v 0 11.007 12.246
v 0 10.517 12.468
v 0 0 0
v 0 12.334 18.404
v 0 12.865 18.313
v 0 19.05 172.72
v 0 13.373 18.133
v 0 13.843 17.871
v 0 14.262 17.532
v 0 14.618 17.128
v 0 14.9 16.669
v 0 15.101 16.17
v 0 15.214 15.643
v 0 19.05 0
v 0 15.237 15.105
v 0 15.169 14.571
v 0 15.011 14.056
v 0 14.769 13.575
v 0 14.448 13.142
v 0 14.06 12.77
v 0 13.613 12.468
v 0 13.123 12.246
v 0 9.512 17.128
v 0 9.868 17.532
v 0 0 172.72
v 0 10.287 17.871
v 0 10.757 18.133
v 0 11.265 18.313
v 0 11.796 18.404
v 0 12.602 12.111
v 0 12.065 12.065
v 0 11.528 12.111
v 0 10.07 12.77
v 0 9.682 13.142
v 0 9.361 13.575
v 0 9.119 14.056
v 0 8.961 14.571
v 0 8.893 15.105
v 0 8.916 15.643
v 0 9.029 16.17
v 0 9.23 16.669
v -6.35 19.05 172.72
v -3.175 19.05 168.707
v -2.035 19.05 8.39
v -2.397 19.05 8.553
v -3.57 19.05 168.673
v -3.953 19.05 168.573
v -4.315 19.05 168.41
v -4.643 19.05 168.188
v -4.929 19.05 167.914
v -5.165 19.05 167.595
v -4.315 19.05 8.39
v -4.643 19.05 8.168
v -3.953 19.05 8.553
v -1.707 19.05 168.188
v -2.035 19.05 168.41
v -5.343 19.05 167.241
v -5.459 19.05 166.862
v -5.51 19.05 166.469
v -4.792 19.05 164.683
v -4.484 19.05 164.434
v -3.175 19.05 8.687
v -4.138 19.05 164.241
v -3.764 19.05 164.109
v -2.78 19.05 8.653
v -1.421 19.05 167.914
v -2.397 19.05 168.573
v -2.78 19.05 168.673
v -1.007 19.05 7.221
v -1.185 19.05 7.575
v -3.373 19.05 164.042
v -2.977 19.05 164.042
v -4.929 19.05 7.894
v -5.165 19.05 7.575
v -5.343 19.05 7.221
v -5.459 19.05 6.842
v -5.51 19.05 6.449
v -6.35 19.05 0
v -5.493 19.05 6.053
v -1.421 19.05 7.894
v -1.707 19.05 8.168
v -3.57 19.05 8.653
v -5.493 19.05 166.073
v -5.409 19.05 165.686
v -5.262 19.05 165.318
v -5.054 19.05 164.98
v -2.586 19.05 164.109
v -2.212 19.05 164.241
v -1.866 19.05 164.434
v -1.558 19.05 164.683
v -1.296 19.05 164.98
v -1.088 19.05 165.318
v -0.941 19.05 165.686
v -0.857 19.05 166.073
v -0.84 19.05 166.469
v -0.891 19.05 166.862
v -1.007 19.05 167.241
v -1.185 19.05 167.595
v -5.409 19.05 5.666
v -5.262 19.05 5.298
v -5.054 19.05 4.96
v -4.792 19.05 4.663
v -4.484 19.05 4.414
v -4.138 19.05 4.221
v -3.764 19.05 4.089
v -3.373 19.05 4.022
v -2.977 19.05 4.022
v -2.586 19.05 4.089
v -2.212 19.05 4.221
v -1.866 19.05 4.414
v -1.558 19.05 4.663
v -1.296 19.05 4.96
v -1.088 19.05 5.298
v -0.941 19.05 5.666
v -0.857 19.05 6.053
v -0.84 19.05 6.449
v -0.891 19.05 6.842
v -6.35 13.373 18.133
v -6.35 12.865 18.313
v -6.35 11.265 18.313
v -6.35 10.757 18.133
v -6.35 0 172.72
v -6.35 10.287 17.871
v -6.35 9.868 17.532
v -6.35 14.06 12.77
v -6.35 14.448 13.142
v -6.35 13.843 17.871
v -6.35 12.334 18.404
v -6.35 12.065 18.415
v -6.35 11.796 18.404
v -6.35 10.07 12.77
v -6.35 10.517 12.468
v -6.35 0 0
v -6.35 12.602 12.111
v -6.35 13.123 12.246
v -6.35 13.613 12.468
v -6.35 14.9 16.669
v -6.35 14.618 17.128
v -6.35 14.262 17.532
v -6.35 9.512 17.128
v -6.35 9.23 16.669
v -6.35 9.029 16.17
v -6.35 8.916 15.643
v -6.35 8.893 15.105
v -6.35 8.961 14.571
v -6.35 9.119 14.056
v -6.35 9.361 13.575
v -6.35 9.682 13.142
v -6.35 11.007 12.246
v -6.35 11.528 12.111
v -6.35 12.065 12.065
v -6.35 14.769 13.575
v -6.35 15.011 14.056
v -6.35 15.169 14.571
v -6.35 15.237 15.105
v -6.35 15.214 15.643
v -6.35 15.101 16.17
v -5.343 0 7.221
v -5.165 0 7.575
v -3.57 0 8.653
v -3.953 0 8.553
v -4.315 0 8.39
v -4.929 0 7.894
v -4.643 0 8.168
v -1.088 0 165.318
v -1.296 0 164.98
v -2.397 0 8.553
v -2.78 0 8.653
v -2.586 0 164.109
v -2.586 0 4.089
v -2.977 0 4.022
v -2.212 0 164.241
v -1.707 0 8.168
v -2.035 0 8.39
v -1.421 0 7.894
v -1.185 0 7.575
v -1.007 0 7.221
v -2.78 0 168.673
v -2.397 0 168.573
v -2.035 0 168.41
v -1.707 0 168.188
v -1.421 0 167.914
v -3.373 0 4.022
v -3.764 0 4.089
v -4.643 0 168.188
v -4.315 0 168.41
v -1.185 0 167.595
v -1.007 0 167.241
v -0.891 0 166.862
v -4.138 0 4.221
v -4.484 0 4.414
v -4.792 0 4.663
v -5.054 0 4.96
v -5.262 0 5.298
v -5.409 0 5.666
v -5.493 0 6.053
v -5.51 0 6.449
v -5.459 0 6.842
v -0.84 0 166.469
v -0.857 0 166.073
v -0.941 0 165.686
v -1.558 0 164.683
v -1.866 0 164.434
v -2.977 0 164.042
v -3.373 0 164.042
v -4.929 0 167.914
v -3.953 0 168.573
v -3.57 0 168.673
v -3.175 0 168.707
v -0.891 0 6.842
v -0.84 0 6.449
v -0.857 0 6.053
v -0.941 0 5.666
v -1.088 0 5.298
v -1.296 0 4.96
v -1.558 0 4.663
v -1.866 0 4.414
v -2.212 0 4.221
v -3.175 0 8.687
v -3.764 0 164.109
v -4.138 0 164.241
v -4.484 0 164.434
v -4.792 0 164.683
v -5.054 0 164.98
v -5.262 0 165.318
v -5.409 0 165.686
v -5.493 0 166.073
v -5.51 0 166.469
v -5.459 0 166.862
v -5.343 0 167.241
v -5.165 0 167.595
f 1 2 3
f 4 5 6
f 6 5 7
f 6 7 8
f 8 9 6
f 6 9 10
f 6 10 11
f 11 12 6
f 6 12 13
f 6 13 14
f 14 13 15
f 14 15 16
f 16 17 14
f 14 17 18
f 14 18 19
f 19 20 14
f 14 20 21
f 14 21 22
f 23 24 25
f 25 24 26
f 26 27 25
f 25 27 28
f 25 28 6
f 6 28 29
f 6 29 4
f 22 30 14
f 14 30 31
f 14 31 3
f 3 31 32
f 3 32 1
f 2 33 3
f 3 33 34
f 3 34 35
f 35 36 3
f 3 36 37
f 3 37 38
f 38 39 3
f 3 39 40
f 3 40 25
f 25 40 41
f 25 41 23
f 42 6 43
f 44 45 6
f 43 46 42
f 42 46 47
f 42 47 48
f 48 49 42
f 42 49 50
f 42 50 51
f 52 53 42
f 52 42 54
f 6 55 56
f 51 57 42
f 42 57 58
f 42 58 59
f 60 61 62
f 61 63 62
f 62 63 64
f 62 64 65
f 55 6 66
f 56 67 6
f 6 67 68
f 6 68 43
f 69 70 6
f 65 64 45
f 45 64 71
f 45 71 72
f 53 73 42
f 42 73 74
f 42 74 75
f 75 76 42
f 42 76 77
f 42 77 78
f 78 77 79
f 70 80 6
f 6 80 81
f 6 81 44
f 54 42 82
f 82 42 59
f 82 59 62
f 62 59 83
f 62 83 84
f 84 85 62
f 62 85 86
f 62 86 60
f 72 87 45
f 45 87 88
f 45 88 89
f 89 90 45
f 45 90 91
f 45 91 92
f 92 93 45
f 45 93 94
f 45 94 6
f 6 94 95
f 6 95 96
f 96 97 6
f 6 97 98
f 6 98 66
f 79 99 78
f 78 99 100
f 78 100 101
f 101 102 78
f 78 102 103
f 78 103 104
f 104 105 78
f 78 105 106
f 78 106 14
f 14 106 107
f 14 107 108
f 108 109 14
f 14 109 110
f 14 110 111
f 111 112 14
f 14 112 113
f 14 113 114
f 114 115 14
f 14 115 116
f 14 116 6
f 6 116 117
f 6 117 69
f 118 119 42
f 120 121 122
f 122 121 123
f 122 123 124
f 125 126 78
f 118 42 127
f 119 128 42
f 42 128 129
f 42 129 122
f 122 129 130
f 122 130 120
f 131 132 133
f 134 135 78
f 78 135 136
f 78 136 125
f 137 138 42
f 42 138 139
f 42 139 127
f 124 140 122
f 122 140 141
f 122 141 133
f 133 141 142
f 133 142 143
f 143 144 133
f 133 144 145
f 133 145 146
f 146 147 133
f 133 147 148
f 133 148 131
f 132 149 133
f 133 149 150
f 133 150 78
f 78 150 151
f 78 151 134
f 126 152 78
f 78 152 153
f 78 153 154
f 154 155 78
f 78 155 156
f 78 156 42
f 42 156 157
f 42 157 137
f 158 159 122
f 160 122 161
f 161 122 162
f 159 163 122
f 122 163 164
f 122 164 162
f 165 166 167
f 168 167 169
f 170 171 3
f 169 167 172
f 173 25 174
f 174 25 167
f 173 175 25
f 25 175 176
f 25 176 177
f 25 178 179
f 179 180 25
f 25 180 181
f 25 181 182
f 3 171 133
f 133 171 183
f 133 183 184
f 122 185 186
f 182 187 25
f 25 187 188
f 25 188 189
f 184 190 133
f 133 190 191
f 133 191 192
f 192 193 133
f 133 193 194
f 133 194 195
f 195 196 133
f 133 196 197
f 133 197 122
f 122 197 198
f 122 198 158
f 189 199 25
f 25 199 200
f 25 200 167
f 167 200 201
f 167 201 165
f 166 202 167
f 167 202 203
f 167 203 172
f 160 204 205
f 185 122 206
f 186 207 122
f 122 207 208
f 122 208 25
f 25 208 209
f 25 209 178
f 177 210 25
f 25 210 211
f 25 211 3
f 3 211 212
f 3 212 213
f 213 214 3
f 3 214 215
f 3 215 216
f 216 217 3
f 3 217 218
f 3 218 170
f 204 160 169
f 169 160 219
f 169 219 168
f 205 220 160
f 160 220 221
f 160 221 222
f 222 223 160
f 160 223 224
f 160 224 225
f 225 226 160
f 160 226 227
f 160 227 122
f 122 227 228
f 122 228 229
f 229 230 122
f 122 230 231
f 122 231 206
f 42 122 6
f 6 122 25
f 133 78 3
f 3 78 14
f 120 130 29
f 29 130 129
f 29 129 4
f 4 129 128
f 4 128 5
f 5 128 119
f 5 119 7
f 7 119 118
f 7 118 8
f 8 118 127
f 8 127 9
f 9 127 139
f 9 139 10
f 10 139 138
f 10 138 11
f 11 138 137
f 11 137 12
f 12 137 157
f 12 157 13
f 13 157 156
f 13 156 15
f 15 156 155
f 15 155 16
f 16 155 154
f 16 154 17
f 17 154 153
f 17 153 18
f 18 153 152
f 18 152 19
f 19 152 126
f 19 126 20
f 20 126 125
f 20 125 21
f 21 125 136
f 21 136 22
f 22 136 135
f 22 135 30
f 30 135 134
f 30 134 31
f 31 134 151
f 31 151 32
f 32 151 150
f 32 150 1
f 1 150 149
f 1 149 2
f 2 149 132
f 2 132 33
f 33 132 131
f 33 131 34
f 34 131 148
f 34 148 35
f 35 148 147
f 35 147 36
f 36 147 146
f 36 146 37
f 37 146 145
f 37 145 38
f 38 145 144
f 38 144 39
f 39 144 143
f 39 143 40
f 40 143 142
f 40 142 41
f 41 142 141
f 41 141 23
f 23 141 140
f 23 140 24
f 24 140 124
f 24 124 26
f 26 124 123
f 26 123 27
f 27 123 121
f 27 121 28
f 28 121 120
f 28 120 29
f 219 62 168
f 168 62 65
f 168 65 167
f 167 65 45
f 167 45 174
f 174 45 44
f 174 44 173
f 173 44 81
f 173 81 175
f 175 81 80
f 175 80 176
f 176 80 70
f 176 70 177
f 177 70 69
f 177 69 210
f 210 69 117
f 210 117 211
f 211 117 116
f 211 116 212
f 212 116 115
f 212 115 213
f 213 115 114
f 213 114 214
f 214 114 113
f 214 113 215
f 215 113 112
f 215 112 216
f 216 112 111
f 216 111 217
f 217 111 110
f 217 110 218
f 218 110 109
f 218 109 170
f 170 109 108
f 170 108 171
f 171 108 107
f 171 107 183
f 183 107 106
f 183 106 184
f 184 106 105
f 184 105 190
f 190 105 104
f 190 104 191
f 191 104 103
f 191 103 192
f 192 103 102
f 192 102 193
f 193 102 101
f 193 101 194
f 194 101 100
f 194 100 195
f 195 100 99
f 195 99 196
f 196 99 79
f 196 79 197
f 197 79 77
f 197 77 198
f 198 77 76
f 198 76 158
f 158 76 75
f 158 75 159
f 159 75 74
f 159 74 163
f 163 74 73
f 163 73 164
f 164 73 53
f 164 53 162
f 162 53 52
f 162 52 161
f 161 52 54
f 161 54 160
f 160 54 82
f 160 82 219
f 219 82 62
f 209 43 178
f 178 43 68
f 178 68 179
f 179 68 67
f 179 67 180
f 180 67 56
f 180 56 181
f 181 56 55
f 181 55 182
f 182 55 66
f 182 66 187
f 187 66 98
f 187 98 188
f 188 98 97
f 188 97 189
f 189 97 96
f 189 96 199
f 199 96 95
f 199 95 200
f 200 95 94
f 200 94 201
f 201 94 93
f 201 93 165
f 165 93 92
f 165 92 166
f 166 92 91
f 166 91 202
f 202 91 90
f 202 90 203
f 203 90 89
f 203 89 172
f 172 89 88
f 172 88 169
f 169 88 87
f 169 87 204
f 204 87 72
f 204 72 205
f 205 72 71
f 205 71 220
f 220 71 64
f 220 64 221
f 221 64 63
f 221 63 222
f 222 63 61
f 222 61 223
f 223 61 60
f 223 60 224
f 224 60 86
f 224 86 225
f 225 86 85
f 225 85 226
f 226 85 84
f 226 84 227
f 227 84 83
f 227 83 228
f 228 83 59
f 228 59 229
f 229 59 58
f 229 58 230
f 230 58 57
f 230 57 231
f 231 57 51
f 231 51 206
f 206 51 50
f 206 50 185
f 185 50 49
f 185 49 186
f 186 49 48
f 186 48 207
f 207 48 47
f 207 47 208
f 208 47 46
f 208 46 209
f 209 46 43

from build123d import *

# Parameters (mm, degrees)
SKETCH1_W           = 6.35
SKETCH1_H           = 19.05
BOSS_EXTRUDE1_DEPTH = 172.72
SKETCH4_R           = 3.175000102
CUT_EXTRUDE3_DEPTH  = 25.4
SKETCH2_R           = 2.3368
CUT_EXTRUDE4_DEPTH  = 174.883361481


with BuildPart() as part:
    # Sketch1 → Boss-Extrude1 (new body)
    with BuildSketch(Plane.XY):
        with Locations((-3.175, 9.525)):
            Rectangle(SKETCH1_W, SKETCH1_H)
    extrude(amount=BOSS_EXTRUDE1_DEPTH)

    # Sketch4 → Cut-Extrude3 (cut)
    with BuildSketch(Plane(origin=(0, 0, 0), x_dir=(0, 0, -1), z_dir=(1, 0, 0))):
        with Locations((-15.24, 12.065)):
            Circle(SKETCH4_R)
    extrude(amount=-CUT_EXTRUDE3_DEPTH, mode=Mode.SUBTRACT)

    # Sketch2 → Cut-Extrude4 (cut, through all)
    with BuildSketch(Plane(origin=(0, 19.05, 0), x_dir=(1, 0, 0), z_dir=(0, 1, 0))):
        with Locations(Location((-3.175, -166.37, 0), (0, 0, 270))):
            Circle(SKETCH2_R)
        with Locations(Location((-3.175, -6.35, 0), (0, 0, 270))):
            Circle(SKETCH2_R)
    extrude(amount=-CUT_EXTRUDE4_DEPTH, mode=Mode.SUBTRACT)


solid = part.part
